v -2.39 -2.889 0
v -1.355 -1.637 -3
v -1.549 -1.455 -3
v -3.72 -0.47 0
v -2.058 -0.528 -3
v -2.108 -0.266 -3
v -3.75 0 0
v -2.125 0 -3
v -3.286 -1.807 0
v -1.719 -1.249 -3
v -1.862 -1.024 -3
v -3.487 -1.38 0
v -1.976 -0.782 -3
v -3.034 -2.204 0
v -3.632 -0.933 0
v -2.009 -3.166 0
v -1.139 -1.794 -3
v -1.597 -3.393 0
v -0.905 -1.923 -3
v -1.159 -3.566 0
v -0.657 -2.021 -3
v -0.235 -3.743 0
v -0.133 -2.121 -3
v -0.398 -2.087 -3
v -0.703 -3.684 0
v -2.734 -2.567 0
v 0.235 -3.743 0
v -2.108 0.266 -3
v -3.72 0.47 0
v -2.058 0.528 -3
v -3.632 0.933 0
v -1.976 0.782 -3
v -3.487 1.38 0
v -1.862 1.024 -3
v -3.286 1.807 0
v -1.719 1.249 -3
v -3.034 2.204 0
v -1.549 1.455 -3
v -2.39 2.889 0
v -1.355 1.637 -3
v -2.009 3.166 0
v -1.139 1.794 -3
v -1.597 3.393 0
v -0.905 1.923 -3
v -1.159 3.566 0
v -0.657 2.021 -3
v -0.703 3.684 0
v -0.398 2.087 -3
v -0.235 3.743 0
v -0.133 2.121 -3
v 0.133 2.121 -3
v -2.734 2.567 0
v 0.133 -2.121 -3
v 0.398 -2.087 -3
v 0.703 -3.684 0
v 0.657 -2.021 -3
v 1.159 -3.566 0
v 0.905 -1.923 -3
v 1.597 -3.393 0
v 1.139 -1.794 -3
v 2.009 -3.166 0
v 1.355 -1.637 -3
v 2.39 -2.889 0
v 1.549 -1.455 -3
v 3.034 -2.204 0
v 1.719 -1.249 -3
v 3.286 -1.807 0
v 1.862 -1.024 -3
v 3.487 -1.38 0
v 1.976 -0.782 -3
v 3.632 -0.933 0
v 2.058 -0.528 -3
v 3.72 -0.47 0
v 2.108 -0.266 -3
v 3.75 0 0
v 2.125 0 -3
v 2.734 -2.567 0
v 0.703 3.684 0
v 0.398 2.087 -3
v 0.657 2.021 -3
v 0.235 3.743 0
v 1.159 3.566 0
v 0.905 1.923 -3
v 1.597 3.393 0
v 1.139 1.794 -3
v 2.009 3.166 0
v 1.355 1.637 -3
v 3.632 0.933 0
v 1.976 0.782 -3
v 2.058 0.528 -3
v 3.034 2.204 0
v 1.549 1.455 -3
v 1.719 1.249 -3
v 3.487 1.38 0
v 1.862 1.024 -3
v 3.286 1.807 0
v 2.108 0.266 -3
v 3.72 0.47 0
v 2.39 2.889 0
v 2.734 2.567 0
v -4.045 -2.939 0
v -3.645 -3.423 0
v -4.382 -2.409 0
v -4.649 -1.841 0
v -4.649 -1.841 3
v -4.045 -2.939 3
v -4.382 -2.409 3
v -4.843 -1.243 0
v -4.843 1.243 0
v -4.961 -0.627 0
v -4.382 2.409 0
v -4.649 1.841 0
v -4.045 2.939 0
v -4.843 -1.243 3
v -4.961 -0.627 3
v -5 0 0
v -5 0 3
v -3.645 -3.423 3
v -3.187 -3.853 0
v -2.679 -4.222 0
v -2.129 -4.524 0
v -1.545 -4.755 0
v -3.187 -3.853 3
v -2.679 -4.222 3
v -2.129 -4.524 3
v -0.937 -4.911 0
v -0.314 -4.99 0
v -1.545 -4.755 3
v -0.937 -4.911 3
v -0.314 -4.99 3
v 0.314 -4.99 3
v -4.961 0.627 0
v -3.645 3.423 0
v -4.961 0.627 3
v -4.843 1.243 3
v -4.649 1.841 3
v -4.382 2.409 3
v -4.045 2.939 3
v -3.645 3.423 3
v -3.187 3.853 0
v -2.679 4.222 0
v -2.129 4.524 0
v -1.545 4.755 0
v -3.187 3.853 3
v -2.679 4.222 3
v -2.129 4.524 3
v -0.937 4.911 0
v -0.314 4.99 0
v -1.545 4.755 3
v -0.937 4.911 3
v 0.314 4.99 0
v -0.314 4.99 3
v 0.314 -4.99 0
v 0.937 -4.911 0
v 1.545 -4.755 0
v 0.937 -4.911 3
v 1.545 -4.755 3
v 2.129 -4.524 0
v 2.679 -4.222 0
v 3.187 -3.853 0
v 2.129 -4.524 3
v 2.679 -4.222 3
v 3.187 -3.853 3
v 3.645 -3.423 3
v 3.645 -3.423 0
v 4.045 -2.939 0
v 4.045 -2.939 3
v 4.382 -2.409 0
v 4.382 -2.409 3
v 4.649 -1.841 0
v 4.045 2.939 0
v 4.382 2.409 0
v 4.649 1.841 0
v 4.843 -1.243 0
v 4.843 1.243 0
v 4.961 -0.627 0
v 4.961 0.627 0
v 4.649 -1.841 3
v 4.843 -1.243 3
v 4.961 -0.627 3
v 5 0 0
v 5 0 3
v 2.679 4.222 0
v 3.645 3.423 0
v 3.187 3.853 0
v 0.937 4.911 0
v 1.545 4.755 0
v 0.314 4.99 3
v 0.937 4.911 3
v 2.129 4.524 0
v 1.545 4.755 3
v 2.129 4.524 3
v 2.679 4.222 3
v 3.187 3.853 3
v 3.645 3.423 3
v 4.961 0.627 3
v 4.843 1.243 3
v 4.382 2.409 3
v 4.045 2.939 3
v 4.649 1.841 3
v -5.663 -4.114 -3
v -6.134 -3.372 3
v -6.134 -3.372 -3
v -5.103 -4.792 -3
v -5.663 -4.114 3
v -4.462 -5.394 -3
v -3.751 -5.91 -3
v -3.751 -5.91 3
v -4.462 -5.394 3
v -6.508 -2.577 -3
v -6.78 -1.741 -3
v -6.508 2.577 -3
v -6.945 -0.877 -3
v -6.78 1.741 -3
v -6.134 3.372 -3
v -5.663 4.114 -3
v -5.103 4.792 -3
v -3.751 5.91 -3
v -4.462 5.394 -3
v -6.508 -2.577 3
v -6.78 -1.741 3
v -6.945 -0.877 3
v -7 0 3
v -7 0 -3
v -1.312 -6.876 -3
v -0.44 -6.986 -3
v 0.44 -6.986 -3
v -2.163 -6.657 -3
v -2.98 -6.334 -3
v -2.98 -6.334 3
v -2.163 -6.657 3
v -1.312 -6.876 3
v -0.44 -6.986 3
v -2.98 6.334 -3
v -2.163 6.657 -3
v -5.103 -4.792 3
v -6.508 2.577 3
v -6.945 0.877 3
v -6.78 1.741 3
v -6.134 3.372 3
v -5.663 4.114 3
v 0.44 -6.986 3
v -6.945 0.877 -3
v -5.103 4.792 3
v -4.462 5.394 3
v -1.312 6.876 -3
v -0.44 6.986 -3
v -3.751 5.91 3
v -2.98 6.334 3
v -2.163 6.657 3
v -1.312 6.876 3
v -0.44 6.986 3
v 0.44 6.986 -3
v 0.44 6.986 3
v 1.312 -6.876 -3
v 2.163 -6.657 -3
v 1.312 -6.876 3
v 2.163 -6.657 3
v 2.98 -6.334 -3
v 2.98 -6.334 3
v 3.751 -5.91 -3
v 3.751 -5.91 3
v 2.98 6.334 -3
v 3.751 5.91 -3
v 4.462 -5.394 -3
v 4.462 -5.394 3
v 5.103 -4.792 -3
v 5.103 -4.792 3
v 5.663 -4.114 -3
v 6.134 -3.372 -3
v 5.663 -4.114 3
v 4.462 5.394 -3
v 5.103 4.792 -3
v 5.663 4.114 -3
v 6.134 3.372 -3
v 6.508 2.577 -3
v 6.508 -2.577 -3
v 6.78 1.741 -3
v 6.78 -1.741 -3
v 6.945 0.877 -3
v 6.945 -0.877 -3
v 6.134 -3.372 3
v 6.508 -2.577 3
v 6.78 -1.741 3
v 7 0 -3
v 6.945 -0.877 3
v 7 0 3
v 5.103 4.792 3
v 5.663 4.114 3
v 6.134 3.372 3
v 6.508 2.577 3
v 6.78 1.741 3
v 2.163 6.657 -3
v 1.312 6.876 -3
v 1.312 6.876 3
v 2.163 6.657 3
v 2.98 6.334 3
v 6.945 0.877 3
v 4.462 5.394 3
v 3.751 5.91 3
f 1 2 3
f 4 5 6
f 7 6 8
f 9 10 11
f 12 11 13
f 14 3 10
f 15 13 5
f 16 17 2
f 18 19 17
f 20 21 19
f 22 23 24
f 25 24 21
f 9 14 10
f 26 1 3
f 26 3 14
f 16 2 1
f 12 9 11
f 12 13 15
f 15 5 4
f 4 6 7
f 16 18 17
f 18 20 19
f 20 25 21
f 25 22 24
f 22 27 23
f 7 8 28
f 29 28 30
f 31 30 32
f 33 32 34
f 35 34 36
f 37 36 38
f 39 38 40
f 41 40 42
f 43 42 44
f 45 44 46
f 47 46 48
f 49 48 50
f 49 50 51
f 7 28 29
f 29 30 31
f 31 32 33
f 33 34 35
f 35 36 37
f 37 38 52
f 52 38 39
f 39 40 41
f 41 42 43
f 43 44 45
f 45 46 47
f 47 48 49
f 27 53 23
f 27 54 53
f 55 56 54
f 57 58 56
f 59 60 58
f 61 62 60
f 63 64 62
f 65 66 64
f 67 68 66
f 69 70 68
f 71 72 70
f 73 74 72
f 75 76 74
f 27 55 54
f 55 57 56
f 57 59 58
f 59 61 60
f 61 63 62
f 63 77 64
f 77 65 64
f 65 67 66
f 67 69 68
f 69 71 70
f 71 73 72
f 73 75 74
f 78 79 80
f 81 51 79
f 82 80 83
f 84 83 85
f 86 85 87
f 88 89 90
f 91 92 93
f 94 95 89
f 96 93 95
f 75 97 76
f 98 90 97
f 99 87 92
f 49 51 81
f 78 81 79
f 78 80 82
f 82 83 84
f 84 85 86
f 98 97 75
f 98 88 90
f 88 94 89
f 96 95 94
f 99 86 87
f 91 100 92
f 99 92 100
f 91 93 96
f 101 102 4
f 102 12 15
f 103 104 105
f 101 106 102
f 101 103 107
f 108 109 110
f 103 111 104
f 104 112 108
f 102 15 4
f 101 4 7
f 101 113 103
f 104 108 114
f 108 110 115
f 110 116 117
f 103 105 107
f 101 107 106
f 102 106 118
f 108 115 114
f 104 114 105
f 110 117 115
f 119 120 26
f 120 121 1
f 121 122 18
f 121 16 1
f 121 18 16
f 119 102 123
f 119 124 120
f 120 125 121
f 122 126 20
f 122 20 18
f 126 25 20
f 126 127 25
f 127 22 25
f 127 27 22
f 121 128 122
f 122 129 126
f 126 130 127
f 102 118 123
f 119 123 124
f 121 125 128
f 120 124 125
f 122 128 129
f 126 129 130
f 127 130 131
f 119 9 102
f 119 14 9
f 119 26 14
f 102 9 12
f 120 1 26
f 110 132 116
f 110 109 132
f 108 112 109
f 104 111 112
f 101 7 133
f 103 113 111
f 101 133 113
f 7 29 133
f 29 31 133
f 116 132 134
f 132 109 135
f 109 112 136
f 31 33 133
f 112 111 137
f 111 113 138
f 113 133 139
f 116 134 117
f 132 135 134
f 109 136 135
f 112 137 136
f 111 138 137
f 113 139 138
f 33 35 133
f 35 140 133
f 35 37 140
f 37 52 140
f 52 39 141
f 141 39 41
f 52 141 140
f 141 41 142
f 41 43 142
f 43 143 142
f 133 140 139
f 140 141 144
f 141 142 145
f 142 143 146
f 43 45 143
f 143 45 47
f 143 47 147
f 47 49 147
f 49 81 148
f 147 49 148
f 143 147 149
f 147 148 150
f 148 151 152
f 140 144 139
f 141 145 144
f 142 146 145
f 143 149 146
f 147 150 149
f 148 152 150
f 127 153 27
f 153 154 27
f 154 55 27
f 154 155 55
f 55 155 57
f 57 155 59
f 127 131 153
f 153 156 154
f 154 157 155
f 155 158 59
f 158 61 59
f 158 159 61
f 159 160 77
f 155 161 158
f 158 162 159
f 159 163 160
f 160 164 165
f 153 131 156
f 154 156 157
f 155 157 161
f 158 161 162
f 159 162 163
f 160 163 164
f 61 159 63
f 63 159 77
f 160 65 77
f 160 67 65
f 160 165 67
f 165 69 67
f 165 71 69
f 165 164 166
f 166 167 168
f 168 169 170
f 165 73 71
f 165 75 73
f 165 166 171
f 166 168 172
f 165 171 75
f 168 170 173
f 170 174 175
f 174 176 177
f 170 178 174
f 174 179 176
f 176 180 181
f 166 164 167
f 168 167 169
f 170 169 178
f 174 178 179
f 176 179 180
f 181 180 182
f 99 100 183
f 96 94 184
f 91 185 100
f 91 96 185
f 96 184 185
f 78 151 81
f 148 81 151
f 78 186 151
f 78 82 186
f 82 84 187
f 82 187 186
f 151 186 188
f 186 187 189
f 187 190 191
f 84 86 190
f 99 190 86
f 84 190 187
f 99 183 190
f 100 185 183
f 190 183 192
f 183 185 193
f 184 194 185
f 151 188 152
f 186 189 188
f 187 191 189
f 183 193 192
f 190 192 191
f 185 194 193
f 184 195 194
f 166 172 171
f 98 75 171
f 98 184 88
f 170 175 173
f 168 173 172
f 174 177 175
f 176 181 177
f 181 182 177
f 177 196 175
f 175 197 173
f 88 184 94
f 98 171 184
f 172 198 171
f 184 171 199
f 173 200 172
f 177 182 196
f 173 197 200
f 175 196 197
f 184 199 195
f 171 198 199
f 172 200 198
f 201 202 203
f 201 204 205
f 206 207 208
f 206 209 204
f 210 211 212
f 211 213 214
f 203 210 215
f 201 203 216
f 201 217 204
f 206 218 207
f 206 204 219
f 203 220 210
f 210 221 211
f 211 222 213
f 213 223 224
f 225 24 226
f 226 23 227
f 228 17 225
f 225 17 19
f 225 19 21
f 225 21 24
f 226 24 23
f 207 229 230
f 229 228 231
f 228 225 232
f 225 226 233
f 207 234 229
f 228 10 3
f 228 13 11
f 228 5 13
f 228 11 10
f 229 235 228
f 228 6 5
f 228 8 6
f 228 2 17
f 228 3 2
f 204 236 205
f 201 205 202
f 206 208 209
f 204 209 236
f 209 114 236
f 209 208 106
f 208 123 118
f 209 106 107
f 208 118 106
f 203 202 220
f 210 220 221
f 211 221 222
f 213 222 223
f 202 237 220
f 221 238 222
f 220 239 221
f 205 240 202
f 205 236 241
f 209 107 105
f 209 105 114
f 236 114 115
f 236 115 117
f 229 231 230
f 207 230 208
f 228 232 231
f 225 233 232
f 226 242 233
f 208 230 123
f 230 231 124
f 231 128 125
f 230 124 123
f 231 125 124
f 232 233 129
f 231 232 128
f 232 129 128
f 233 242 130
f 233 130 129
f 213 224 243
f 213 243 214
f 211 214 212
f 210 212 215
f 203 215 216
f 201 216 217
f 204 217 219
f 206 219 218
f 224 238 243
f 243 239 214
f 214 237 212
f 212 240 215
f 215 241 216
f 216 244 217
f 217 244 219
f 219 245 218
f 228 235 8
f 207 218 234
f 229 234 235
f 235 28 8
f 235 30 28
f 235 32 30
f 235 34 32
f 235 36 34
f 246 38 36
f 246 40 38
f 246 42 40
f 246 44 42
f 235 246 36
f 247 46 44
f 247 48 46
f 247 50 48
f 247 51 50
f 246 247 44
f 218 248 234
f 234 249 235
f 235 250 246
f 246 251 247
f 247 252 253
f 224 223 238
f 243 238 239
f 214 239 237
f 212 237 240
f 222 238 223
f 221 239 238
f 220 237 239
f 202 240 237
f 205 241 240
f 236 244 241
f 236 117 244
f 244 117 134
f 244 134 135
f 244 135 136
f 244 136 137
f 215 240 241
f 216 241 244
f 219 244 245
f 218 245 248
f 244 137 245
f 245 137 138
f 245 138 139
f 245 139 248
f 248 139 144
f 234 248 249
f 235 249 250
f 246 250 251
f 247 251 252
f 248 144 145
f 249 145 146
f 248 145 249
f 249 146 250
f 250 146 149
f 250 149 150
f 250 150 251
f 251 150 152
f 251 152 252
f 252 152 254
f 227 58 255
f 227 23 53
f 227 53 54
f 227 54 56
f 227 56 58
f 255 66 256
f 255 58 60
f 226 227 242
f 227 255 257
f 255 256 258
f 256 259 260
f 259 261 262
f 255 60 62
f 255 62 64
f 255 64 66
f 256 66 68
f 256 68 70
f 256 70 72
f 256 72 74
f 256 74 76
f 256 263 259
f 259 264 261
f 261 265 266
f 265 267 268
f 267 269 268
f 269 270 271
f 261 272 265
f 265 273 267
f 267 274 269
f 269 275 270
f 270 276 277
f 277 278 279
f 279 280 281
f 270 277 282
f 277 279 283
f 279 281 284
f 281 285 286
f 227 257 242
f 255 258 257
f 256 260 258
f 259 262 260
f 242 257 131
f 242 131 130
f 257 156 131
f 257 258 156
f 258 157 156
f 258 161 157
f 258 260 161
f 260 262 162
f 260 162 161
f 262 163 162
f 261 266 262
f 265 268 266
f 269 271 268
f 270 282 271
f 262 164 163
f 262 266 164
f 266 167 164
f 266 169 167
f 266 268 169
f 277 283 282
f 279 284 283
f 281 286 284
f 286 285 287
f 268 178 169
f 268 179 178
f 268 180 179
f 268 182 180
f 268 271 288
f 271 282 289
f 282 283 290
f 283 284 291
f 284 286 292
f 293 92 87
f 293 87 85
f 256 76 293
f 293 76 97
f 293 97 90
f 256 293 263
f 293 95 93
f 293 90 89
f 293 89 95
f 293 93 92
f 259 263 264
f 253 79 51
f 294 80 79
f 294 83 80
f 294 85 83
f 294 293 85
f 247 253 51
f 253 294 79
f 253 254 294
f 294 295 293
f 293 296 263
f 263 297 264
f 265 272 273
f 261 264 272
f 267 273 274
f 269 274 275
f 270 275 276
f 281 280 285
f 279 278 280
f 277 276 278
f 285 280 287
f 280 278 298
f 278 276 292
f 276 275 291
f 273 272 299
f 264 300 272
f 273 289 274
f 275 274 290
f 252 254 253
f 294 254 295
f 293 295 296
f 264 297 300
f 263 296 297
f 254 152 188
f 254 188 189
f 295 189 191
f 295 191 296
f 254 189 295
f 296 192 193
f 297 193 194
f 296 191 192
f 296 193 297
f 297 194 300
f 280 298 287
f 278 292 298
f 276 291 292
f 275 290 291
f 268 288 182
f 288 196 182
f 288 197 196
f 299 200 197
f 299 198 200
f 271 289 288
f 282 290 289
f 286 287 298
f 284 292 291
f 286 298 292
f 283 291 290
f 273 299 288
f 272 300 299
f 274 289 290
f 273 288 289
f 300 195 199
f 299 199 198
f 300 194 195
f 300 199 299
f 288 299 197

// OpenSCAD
$fn = 50;

difference() {
	union() {
		translate(v = [0, 0, -3.0]) {
			cylinder(h = 6, r = 7.0);
		}
	}
	union() {
		translate(v = [0, 0, 0]) {
			rotate(a = [0, 0, 0]) {
				difference() {
					union() {
						translate(v = [0, 0, -6.0]) {
							cylinder(h = 6, r = 2.0);
						}
						translate(v = [0, 0, -3]) {
							cylinder(h = 3, r1 = 2.125, r2 = 3.75);
						}
						translate(v = [0, 0, -6.0]) {
							cylinder(h = 6, r = 2.125);
						}
						translate(v = [0, 0, -6.0]) {
							cylinder(h = 6, r = 2.0);
						}
					}
					union();
				}
			}
		}
		#cylinder(h = 3, r = 5.0);
	}
}
